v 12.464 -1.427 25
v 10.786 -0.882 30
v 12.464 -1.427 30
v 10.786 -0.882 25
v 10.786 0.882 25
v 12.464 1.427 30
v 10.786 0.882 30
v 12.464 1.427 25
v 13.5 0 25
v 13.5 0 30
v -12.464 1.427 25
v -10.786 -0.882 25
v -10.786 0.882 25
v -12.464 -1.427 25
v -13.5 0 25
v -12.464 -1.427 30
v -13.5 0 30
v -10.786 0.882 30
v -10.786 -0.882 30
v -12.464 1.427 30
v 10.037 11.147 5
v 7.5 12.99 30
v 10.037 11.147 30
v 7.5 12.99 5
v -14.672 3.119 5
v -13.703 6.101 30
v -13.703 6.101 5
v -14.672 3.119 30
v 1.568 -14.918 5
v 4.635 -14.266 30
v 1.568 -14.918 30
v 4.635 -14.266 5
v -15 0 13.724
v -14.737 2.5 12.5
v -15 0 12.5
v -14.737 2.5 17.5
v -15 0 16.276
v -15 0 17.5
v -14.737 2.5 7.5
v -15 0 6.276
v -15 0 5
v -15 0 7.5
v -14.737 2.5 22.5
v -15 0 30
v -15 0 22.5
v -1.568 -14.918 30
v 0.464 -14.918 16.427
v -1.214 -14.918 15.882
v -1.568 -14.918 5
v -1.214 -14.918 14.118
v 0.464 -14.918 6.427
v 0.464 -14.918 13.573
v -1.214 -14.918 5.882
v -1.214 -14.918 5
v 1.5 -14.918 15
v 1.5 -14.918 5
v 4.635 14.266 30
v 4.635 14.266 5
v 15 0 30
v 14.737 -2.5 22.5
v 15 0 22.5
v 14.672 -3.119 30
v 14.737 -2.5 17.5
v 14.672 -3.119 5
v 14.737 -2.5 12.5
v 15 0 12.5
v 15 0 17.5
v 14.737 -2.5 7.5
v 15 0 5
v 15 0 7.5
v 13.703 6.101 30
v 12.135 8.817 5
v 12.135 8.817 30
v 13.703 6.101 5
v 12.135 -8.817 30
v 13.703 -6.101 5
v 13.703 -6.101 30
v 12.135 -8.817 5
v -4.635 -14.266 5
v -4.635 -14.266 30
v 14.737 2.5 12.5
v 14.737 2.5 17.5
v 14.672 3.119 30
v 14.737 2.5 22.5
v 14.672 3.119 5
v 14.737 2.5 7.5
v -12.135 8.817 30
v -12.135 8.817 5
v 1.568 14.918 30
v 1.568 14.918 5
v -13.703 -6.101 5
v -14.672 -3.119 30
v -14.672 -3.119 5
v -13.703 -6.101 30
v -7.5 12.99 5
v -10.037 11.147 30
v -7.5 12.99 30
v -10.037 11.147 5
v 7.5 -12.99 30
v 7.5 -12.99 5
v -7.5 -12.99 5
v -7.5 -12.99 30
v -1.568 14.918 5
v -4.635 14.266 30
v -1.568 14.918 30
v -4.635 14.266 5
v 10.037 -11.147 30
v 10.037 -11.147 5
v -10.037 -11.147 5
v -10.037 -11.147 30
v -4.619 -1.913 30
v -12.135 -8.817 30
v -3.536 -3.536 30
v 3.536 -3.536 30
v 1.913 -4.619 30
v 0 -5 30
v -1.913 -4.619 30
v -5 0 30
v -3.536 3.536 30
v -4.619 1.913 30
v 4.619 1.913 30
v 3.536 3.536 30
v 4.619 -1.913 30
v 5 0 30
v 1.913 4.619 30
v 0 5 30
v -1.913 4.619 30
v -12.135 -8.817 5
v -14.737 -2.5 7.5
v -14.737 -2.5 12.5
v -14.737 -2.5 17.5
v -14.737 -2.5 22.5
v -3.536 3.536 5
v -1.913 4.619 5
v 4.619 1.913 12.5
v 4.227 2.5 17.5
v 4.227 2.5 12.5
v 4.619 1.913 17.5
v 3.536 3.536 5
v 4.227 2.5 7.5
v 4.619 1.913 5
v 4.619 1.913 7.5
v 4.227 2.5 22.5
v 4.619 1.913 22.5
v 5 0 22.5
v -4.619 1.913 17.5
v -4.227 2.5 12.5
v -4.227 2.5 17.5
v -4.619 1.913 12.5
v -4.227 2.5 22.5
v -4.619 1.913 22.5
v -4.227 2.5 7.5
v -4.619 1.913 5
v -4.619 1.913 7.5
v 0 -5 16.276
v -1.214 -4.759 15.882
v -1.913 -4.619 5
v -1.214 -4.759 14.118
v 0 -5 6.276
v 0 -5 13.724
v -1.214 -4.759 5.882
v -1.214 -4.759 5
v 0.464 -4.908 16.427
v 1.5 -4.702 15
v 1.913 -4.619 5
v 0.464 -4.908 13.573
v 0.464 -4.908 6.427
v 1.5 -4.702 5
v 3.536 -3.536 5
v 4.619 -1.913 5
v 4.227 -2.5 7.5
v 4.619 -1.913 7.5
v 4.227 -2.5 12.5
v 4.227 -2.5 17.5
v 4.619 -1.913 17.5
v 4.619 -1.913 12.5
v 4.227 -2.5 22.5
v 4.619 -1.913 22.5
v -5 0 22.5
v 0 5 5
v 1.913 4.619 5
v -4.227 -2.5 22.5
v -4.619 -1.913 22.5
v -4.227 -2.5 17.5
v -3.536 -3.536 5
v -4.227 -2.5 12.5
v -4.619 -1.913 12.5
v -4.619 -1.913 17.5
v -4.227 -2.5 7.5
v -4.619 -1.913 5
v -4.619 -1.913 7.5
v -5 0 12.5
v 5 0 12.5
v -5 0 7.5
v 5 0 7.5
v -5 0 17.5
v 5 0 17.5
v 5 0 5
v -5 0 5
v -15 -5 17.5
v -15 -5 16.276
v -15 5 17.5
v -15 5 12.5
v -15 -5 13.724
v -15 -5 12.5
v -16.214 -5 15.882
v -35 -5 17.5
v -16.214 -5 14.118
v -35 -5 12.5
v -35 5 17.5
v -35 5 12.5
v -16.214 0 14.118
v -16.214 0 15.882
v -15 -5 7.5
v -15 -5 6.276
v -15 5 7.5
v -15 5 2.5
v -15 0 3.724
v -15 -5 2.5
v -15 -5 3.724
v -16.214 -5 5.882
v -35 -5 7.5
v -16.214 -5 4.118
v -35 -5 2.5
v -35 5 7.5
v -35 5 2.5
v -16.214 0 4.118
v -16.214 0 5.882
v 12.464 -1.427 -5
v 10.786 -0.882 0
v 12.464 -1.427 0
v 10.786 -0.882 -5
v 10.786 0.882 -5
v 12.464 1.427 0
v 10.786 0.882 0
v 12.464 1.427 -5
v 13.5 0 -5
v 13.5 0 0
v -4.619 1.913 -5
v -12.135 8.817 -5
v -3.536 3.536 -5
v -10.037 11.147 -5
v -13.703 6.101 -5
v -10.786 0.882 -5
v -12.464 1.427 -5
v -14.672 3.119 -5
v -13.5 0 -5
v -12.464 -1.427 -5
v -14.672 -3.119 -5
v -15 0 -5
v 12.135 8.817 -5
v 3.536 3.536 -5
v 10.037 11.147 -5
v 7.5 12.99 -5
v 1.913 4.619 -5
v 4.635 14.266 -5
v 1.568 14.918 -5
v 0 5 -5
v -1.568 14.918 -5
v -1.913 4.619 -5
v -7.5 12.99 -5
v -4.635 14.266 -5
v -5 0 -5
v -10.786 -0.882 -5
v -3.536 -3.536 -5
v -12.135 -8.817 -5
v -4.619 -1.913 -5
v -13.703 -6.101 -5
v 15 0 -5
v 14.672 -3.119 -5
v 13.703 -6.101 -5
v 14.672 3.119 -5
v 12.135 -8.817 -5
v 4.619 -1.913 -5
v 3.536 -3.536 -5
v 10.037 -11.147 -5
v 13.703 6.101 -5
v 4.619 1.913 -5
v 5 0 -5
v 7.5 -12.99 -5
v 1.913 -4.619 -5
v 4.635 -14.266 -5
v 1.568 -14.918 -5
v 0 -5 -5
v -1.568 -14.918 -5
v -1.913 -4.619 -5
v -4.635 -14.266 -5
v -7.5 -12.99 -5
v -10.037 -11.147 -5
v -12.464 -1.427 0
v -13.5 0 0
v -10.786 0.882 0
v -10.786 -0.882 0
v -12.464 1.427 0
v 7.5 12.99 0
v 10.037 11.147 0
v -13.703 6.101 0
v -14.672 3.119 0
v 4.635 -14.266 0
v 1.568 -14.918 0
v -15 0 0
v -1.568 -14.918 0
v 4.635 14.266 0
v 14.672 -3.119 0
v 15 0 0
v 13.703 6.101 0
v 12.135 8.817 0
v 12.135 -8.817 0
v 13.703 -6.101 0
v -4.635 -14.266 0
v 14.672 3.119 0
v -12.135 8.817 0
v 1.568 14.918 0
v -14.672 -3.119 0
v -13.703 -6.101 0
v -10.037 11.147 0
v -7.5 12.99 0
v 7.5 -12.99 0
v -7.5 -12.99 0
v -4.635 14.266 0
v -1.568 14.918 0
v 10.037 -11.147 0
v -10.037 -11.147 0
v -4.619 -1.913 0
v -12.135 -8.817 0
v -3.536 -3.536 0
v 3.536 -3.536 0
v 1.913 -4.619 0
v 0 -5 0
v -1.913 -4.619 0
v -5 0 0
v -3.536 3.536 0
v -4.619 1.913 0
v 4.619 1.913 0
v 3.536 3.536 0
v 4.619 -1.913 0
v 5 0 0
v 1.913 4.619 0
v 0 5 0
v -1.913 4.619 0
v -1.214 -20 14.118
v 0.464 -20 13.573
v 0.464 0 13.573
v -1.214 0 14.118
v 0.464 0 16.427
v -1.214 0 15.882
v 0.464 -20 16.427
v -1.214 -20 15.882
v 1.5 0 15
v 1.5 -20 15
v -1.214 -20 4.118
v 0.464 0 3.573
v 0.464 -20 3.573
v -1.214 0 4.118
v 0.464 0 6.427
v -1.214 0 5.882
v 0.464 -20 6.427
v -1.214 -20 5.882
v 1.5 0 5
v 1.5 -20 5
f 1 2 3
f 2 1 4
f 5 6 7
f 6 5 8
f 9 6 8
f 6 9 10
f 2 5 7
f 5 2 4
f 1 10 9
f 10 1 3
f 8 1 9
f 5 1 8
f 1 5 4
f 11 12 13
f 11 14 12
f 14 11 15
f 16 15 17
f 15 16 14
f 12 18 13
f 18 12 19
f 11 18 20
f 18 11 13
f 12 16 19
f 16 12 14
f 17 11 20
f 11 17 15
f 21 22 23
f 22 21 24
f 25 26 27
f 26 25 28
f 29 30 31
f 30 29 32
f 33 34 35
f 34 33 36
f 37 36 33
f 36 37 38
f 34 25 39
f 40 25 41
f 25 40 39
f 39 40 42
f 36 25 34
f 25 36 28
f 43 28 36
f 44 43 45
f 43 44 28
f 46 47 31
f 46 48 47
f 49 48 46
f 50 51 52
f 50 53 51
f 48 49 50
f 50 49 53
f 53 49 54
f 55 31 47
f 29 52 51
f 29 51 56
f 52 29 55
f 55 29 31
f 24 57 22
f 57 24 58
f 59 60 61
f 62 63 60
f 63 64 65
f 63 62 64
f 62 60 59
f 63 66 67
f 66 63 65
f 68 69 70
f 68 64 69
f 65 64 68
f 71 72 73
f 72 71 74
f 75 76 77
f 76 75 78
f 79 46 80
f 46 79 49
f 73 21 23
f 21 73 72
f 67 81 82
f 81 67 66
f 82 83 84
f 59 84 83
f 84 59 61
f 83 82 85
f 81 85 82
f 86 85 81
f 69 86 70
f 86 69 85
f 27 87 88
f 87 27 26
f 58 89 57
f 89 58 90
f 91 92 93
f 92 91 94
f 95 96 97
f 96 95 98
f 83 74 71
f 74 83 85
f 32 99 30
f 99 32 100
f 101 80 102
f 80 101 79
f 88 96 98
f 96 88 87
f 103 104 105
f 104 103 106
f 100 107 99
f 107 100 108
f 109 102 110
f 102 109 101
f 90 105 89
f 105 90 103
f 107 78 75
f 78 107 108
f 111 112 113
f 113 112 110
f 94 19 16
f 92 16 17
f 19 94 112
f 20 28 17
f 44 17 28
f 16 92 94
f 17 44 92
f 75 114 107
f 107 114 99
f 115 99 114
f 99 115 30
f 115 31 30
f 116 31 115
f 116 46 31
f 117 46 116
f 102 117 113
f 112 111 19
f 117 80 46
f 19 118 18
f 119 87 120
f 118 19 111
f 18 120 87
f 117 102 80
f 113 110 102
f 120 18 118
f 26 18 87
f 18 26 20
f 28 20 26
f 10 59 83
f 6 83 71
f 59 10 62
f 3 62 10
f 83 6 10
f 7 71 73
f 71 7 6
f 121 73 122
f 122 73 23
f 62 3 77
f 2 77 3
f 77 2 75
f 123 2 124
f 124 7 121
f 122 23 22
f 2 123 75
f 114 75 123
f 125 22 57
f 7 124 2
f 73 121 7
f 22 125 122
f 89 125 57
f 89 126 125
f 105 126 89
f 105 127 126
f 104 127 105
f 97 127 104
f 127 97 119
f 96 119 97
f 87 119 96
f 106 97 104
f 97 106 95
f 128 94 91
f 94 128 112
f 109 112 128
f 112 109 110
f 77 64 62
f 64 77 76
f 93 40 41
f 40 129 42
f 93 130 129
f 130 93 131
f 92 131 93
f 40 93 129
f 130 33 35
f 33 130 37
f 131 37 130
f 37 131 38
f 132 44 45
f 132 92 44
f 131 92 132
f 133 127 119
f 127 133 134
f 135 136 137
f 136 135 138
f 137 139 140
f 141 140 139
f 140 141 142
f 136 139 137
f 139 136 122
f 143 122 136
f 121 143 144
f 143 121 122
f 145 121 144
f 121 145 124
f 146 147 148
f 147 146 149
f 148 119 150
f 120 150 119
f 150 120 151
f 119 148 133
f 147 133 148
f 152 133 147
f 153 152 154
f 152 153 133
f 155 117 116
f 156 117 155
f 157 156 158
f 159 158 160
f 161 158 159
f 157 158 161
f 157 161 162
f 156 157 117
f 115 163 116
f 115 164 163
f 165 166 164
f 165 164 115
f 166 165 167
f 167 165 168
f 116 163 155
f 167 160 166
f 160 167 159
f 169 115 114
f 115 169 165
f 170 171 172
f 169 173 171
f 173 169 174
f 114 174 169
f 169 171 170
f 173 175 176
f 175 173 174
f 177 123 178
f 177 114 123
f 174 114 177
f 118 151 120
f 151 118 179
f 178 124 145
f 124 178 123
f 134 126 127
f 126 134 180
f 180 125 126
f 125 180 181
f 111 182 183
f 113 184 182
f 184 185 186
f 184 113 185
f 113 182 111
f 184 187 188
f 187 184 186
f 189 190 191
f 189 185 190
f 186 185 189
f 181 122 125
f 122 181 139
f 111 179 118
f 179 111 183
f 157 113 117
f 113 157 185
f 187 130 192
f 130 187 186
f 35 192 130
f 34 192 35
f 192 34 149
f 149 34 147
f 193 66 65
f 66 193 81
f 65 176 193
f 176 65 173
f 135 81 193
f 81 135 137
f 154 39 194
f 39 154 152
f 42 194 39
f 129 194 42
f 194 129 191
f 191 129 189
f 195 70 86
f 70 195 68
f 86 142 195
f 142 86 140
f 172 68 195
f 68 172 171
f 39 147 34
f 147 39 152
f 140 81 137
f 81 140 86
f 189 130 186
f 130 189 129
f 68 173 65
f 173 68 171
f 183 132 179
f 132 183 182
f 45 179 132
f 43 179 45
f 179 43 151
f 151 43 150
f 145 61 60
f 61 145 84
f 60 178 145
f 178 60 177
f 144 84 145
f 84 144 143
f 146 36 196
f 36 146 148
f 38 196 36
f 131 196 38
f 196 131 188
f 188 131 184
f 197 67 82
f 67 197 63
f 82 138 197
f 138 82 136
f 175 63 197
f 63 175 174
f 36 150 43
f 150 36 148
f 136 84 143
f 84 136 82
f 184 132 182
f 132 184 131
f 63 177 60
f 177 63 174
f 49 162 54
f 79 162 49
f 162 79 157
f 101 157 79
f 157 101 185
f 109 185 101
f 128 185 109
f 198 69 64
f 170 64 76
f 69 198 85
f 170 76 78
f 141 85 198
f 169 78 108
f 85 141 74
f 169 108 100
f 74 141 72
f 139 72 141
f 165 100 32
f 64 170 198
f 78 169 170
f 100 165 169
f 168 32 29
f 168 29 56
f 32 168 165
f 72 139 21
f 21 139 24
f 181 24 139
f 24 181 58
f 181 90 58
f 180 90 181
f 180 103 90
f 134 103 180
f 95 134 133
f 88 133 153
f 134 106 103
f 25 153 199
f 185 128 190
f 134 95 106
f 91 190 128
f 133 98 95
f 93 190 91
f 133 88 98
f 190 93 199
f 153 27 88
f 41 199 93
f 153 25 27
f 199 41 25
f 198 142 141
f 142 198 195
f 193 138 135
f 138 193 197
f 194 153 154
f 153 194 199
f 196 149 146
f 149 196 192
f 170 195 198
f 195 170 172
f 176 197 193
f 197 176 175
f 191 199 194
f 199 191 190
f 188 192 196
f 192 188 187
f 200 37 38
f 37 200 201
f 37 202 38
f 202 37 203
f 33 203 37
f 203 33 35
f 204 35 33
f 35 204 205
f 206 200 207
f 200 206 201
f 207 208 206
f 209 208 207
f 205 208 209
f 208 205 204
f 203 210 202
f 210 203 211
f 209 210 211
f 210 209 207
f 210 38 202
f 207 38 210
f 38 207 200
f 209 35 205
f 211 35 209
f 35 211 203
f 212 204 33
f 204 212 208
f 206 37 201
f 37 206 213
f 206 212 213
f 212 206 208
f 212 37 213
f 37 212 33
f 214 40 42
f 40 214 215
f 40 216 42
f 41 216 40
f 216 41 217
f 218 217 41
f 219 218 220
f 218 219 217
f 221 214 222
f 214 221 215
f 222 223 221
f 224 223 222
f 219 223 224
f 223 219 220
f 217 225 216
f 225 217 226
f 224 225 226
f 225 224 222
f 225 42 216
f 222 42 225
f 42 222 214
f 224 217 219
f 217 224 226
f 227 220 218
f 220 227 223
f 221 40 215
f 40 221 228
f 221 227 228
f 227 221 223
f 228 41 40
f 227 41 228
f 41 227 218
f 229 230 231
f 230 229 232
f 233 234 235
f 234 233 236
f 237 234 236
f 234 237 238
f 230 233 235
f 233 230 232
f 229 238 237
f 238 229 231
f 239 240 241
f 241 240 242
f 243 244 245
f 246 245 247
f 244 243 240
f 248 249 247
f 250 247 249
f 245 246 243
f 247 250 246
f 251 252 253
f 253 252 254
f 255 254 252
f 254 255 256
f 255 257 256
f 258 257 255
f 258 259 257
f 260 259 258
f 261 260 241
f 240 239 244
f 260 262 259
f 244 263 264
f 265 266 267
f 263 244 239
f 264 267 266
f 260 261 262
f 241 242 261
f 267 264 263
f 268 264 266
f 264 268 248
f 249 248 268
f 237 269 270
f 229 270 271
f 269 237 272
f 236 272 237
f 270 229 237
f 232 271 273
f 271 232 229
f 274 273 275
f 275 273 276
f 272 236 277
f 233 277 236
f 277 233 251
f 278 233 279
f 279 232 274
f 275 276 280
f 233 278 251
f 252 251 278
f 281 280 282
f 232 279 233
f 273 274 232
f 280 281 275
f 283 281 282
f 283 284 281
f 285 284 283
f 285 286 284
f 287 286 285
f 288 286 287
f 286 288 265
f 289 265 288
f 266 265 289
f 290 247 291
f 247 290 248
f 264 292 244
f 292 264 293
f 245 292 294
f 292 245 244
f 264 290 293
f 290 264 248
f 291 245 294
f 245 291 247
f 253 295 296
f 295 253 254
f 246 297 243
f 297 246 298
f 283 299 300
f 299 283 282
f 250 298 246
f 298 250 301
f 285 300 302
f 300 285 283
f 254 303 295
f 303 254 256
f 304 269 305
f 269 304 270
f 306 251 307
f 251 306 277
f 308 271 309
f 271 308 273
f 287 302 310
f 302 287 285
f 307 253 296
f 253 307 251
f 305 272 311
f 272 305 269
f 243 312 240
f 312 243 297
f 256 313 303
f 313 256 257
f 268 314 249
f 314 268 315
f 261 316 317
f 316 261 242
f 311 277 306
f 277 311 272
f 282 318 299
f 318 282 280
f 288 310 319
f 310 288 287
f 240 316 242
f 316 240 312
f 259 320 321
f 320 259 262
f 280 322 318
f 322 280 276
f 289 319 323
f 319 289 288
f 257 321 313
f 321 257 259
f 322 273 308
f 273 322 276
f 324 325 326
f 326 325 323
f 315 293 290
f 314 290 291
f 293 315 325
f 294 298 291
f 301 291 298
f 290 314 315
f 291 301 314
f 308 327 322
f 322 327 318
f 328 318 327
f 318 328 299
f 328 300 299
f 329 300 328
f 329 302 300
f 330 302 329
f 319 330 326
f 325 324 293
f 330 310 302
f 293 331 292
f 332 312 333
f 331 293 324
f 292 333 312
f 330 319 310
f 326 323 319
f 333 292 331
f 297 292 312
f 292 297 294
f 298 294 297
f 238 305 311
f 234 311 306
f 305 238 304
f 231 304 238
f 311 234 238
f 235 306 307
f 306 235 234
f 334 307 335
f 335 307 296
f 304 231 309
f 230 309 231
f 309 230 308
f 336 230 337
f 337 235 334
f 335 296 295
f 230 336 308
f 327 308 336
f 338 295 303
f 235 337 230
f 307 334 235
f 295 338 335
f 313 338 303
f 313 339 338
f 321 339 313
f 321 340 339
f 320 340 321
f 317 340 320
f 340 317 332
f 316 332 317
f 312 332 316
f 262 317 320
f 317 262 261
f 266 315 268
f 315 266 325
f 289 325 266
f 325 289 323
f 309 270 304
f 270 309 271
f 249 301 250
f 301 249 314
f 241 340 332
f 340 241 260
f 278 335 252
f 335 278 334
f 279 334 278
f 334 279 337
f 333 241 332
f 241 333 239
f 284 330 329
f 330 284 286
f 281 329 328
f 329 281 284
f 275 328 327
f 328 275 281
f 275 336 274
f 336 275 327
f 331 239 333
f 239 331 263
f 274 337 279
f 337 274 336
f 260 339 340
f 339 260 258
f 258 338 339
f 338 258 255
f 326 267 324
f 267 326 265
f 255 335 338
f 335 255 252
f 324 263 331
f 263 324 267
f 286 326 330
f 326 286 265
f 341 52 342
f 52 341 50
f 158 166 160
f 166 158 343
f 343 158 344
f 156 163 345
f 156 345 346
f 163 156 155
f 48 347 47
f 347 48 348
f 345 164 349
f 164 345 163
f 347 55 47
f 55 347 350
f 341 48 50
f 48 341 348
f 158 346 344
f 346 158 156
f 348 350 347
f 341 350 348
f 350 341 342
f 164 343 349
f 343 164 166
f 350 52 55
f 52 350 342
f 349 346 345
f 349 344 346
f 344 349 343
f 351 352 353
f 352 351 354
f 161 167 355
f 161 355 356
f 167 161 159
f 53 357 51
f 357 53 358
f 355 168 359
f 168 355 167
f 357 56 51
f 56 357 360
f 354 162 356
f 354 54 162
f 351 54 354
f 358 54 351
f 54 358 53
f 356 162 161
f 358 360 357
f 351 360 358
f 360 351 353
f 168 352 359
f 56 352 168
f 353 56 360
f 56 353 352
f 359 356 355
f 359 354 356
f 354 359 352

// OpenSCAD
module end_plate() {
    difference() {
        cylinder(h = 5, d = 30); // Main disc
        translate([0, 0, -1]) cylinder(h = 7, d = 10); // Central hole
        for (i = [0, 180]) {
            rotate([0, 0, i]) translate([12, 0, 0]) cylinder(h = 7, d = 3); // Screw holes
        }
    }
}

module central_body() {
    difference() {
        cylinder(h = 20, d = 30); // Main cylindrical body
        translate([0, 0, -1]) cylinder(h = 22, d = 10); // Central bore
        for (z = [5, 15]) {
            translate([0, 0, z]) cube([30, 5, 5], center = true); // Grooves for cross bars
        }
    }
}

module cross_bar() {
    difference() {
        translate([-10, 0, 0]) cube([20, 5, 10], center = true); // Main bar
        cylinder(h = 10, d = 3); // Central hole for pin
    }
}

module pin() {
    cylinder(h = 20, d = 3); // Pin rod
}

module flexible_coupling() {
    translate([0, 0, 25]) end_plate();
    translate([0, 0, 5]) central_body();
    translate([-15, 0, 15]) rotate([90, 0, 0]) cross_bar();
    translate([-15, 0, 5]) rotate([90, 0, 0]) cross_bar();
    translate([0, 0, 15]) rotate([90, 0, 0]) pin();
    translate([0, 0, 5]) rotate([90, 0, 0]) pin();
    translate([0, 0, -5]) end_plate();
}

flexible_coupling();
